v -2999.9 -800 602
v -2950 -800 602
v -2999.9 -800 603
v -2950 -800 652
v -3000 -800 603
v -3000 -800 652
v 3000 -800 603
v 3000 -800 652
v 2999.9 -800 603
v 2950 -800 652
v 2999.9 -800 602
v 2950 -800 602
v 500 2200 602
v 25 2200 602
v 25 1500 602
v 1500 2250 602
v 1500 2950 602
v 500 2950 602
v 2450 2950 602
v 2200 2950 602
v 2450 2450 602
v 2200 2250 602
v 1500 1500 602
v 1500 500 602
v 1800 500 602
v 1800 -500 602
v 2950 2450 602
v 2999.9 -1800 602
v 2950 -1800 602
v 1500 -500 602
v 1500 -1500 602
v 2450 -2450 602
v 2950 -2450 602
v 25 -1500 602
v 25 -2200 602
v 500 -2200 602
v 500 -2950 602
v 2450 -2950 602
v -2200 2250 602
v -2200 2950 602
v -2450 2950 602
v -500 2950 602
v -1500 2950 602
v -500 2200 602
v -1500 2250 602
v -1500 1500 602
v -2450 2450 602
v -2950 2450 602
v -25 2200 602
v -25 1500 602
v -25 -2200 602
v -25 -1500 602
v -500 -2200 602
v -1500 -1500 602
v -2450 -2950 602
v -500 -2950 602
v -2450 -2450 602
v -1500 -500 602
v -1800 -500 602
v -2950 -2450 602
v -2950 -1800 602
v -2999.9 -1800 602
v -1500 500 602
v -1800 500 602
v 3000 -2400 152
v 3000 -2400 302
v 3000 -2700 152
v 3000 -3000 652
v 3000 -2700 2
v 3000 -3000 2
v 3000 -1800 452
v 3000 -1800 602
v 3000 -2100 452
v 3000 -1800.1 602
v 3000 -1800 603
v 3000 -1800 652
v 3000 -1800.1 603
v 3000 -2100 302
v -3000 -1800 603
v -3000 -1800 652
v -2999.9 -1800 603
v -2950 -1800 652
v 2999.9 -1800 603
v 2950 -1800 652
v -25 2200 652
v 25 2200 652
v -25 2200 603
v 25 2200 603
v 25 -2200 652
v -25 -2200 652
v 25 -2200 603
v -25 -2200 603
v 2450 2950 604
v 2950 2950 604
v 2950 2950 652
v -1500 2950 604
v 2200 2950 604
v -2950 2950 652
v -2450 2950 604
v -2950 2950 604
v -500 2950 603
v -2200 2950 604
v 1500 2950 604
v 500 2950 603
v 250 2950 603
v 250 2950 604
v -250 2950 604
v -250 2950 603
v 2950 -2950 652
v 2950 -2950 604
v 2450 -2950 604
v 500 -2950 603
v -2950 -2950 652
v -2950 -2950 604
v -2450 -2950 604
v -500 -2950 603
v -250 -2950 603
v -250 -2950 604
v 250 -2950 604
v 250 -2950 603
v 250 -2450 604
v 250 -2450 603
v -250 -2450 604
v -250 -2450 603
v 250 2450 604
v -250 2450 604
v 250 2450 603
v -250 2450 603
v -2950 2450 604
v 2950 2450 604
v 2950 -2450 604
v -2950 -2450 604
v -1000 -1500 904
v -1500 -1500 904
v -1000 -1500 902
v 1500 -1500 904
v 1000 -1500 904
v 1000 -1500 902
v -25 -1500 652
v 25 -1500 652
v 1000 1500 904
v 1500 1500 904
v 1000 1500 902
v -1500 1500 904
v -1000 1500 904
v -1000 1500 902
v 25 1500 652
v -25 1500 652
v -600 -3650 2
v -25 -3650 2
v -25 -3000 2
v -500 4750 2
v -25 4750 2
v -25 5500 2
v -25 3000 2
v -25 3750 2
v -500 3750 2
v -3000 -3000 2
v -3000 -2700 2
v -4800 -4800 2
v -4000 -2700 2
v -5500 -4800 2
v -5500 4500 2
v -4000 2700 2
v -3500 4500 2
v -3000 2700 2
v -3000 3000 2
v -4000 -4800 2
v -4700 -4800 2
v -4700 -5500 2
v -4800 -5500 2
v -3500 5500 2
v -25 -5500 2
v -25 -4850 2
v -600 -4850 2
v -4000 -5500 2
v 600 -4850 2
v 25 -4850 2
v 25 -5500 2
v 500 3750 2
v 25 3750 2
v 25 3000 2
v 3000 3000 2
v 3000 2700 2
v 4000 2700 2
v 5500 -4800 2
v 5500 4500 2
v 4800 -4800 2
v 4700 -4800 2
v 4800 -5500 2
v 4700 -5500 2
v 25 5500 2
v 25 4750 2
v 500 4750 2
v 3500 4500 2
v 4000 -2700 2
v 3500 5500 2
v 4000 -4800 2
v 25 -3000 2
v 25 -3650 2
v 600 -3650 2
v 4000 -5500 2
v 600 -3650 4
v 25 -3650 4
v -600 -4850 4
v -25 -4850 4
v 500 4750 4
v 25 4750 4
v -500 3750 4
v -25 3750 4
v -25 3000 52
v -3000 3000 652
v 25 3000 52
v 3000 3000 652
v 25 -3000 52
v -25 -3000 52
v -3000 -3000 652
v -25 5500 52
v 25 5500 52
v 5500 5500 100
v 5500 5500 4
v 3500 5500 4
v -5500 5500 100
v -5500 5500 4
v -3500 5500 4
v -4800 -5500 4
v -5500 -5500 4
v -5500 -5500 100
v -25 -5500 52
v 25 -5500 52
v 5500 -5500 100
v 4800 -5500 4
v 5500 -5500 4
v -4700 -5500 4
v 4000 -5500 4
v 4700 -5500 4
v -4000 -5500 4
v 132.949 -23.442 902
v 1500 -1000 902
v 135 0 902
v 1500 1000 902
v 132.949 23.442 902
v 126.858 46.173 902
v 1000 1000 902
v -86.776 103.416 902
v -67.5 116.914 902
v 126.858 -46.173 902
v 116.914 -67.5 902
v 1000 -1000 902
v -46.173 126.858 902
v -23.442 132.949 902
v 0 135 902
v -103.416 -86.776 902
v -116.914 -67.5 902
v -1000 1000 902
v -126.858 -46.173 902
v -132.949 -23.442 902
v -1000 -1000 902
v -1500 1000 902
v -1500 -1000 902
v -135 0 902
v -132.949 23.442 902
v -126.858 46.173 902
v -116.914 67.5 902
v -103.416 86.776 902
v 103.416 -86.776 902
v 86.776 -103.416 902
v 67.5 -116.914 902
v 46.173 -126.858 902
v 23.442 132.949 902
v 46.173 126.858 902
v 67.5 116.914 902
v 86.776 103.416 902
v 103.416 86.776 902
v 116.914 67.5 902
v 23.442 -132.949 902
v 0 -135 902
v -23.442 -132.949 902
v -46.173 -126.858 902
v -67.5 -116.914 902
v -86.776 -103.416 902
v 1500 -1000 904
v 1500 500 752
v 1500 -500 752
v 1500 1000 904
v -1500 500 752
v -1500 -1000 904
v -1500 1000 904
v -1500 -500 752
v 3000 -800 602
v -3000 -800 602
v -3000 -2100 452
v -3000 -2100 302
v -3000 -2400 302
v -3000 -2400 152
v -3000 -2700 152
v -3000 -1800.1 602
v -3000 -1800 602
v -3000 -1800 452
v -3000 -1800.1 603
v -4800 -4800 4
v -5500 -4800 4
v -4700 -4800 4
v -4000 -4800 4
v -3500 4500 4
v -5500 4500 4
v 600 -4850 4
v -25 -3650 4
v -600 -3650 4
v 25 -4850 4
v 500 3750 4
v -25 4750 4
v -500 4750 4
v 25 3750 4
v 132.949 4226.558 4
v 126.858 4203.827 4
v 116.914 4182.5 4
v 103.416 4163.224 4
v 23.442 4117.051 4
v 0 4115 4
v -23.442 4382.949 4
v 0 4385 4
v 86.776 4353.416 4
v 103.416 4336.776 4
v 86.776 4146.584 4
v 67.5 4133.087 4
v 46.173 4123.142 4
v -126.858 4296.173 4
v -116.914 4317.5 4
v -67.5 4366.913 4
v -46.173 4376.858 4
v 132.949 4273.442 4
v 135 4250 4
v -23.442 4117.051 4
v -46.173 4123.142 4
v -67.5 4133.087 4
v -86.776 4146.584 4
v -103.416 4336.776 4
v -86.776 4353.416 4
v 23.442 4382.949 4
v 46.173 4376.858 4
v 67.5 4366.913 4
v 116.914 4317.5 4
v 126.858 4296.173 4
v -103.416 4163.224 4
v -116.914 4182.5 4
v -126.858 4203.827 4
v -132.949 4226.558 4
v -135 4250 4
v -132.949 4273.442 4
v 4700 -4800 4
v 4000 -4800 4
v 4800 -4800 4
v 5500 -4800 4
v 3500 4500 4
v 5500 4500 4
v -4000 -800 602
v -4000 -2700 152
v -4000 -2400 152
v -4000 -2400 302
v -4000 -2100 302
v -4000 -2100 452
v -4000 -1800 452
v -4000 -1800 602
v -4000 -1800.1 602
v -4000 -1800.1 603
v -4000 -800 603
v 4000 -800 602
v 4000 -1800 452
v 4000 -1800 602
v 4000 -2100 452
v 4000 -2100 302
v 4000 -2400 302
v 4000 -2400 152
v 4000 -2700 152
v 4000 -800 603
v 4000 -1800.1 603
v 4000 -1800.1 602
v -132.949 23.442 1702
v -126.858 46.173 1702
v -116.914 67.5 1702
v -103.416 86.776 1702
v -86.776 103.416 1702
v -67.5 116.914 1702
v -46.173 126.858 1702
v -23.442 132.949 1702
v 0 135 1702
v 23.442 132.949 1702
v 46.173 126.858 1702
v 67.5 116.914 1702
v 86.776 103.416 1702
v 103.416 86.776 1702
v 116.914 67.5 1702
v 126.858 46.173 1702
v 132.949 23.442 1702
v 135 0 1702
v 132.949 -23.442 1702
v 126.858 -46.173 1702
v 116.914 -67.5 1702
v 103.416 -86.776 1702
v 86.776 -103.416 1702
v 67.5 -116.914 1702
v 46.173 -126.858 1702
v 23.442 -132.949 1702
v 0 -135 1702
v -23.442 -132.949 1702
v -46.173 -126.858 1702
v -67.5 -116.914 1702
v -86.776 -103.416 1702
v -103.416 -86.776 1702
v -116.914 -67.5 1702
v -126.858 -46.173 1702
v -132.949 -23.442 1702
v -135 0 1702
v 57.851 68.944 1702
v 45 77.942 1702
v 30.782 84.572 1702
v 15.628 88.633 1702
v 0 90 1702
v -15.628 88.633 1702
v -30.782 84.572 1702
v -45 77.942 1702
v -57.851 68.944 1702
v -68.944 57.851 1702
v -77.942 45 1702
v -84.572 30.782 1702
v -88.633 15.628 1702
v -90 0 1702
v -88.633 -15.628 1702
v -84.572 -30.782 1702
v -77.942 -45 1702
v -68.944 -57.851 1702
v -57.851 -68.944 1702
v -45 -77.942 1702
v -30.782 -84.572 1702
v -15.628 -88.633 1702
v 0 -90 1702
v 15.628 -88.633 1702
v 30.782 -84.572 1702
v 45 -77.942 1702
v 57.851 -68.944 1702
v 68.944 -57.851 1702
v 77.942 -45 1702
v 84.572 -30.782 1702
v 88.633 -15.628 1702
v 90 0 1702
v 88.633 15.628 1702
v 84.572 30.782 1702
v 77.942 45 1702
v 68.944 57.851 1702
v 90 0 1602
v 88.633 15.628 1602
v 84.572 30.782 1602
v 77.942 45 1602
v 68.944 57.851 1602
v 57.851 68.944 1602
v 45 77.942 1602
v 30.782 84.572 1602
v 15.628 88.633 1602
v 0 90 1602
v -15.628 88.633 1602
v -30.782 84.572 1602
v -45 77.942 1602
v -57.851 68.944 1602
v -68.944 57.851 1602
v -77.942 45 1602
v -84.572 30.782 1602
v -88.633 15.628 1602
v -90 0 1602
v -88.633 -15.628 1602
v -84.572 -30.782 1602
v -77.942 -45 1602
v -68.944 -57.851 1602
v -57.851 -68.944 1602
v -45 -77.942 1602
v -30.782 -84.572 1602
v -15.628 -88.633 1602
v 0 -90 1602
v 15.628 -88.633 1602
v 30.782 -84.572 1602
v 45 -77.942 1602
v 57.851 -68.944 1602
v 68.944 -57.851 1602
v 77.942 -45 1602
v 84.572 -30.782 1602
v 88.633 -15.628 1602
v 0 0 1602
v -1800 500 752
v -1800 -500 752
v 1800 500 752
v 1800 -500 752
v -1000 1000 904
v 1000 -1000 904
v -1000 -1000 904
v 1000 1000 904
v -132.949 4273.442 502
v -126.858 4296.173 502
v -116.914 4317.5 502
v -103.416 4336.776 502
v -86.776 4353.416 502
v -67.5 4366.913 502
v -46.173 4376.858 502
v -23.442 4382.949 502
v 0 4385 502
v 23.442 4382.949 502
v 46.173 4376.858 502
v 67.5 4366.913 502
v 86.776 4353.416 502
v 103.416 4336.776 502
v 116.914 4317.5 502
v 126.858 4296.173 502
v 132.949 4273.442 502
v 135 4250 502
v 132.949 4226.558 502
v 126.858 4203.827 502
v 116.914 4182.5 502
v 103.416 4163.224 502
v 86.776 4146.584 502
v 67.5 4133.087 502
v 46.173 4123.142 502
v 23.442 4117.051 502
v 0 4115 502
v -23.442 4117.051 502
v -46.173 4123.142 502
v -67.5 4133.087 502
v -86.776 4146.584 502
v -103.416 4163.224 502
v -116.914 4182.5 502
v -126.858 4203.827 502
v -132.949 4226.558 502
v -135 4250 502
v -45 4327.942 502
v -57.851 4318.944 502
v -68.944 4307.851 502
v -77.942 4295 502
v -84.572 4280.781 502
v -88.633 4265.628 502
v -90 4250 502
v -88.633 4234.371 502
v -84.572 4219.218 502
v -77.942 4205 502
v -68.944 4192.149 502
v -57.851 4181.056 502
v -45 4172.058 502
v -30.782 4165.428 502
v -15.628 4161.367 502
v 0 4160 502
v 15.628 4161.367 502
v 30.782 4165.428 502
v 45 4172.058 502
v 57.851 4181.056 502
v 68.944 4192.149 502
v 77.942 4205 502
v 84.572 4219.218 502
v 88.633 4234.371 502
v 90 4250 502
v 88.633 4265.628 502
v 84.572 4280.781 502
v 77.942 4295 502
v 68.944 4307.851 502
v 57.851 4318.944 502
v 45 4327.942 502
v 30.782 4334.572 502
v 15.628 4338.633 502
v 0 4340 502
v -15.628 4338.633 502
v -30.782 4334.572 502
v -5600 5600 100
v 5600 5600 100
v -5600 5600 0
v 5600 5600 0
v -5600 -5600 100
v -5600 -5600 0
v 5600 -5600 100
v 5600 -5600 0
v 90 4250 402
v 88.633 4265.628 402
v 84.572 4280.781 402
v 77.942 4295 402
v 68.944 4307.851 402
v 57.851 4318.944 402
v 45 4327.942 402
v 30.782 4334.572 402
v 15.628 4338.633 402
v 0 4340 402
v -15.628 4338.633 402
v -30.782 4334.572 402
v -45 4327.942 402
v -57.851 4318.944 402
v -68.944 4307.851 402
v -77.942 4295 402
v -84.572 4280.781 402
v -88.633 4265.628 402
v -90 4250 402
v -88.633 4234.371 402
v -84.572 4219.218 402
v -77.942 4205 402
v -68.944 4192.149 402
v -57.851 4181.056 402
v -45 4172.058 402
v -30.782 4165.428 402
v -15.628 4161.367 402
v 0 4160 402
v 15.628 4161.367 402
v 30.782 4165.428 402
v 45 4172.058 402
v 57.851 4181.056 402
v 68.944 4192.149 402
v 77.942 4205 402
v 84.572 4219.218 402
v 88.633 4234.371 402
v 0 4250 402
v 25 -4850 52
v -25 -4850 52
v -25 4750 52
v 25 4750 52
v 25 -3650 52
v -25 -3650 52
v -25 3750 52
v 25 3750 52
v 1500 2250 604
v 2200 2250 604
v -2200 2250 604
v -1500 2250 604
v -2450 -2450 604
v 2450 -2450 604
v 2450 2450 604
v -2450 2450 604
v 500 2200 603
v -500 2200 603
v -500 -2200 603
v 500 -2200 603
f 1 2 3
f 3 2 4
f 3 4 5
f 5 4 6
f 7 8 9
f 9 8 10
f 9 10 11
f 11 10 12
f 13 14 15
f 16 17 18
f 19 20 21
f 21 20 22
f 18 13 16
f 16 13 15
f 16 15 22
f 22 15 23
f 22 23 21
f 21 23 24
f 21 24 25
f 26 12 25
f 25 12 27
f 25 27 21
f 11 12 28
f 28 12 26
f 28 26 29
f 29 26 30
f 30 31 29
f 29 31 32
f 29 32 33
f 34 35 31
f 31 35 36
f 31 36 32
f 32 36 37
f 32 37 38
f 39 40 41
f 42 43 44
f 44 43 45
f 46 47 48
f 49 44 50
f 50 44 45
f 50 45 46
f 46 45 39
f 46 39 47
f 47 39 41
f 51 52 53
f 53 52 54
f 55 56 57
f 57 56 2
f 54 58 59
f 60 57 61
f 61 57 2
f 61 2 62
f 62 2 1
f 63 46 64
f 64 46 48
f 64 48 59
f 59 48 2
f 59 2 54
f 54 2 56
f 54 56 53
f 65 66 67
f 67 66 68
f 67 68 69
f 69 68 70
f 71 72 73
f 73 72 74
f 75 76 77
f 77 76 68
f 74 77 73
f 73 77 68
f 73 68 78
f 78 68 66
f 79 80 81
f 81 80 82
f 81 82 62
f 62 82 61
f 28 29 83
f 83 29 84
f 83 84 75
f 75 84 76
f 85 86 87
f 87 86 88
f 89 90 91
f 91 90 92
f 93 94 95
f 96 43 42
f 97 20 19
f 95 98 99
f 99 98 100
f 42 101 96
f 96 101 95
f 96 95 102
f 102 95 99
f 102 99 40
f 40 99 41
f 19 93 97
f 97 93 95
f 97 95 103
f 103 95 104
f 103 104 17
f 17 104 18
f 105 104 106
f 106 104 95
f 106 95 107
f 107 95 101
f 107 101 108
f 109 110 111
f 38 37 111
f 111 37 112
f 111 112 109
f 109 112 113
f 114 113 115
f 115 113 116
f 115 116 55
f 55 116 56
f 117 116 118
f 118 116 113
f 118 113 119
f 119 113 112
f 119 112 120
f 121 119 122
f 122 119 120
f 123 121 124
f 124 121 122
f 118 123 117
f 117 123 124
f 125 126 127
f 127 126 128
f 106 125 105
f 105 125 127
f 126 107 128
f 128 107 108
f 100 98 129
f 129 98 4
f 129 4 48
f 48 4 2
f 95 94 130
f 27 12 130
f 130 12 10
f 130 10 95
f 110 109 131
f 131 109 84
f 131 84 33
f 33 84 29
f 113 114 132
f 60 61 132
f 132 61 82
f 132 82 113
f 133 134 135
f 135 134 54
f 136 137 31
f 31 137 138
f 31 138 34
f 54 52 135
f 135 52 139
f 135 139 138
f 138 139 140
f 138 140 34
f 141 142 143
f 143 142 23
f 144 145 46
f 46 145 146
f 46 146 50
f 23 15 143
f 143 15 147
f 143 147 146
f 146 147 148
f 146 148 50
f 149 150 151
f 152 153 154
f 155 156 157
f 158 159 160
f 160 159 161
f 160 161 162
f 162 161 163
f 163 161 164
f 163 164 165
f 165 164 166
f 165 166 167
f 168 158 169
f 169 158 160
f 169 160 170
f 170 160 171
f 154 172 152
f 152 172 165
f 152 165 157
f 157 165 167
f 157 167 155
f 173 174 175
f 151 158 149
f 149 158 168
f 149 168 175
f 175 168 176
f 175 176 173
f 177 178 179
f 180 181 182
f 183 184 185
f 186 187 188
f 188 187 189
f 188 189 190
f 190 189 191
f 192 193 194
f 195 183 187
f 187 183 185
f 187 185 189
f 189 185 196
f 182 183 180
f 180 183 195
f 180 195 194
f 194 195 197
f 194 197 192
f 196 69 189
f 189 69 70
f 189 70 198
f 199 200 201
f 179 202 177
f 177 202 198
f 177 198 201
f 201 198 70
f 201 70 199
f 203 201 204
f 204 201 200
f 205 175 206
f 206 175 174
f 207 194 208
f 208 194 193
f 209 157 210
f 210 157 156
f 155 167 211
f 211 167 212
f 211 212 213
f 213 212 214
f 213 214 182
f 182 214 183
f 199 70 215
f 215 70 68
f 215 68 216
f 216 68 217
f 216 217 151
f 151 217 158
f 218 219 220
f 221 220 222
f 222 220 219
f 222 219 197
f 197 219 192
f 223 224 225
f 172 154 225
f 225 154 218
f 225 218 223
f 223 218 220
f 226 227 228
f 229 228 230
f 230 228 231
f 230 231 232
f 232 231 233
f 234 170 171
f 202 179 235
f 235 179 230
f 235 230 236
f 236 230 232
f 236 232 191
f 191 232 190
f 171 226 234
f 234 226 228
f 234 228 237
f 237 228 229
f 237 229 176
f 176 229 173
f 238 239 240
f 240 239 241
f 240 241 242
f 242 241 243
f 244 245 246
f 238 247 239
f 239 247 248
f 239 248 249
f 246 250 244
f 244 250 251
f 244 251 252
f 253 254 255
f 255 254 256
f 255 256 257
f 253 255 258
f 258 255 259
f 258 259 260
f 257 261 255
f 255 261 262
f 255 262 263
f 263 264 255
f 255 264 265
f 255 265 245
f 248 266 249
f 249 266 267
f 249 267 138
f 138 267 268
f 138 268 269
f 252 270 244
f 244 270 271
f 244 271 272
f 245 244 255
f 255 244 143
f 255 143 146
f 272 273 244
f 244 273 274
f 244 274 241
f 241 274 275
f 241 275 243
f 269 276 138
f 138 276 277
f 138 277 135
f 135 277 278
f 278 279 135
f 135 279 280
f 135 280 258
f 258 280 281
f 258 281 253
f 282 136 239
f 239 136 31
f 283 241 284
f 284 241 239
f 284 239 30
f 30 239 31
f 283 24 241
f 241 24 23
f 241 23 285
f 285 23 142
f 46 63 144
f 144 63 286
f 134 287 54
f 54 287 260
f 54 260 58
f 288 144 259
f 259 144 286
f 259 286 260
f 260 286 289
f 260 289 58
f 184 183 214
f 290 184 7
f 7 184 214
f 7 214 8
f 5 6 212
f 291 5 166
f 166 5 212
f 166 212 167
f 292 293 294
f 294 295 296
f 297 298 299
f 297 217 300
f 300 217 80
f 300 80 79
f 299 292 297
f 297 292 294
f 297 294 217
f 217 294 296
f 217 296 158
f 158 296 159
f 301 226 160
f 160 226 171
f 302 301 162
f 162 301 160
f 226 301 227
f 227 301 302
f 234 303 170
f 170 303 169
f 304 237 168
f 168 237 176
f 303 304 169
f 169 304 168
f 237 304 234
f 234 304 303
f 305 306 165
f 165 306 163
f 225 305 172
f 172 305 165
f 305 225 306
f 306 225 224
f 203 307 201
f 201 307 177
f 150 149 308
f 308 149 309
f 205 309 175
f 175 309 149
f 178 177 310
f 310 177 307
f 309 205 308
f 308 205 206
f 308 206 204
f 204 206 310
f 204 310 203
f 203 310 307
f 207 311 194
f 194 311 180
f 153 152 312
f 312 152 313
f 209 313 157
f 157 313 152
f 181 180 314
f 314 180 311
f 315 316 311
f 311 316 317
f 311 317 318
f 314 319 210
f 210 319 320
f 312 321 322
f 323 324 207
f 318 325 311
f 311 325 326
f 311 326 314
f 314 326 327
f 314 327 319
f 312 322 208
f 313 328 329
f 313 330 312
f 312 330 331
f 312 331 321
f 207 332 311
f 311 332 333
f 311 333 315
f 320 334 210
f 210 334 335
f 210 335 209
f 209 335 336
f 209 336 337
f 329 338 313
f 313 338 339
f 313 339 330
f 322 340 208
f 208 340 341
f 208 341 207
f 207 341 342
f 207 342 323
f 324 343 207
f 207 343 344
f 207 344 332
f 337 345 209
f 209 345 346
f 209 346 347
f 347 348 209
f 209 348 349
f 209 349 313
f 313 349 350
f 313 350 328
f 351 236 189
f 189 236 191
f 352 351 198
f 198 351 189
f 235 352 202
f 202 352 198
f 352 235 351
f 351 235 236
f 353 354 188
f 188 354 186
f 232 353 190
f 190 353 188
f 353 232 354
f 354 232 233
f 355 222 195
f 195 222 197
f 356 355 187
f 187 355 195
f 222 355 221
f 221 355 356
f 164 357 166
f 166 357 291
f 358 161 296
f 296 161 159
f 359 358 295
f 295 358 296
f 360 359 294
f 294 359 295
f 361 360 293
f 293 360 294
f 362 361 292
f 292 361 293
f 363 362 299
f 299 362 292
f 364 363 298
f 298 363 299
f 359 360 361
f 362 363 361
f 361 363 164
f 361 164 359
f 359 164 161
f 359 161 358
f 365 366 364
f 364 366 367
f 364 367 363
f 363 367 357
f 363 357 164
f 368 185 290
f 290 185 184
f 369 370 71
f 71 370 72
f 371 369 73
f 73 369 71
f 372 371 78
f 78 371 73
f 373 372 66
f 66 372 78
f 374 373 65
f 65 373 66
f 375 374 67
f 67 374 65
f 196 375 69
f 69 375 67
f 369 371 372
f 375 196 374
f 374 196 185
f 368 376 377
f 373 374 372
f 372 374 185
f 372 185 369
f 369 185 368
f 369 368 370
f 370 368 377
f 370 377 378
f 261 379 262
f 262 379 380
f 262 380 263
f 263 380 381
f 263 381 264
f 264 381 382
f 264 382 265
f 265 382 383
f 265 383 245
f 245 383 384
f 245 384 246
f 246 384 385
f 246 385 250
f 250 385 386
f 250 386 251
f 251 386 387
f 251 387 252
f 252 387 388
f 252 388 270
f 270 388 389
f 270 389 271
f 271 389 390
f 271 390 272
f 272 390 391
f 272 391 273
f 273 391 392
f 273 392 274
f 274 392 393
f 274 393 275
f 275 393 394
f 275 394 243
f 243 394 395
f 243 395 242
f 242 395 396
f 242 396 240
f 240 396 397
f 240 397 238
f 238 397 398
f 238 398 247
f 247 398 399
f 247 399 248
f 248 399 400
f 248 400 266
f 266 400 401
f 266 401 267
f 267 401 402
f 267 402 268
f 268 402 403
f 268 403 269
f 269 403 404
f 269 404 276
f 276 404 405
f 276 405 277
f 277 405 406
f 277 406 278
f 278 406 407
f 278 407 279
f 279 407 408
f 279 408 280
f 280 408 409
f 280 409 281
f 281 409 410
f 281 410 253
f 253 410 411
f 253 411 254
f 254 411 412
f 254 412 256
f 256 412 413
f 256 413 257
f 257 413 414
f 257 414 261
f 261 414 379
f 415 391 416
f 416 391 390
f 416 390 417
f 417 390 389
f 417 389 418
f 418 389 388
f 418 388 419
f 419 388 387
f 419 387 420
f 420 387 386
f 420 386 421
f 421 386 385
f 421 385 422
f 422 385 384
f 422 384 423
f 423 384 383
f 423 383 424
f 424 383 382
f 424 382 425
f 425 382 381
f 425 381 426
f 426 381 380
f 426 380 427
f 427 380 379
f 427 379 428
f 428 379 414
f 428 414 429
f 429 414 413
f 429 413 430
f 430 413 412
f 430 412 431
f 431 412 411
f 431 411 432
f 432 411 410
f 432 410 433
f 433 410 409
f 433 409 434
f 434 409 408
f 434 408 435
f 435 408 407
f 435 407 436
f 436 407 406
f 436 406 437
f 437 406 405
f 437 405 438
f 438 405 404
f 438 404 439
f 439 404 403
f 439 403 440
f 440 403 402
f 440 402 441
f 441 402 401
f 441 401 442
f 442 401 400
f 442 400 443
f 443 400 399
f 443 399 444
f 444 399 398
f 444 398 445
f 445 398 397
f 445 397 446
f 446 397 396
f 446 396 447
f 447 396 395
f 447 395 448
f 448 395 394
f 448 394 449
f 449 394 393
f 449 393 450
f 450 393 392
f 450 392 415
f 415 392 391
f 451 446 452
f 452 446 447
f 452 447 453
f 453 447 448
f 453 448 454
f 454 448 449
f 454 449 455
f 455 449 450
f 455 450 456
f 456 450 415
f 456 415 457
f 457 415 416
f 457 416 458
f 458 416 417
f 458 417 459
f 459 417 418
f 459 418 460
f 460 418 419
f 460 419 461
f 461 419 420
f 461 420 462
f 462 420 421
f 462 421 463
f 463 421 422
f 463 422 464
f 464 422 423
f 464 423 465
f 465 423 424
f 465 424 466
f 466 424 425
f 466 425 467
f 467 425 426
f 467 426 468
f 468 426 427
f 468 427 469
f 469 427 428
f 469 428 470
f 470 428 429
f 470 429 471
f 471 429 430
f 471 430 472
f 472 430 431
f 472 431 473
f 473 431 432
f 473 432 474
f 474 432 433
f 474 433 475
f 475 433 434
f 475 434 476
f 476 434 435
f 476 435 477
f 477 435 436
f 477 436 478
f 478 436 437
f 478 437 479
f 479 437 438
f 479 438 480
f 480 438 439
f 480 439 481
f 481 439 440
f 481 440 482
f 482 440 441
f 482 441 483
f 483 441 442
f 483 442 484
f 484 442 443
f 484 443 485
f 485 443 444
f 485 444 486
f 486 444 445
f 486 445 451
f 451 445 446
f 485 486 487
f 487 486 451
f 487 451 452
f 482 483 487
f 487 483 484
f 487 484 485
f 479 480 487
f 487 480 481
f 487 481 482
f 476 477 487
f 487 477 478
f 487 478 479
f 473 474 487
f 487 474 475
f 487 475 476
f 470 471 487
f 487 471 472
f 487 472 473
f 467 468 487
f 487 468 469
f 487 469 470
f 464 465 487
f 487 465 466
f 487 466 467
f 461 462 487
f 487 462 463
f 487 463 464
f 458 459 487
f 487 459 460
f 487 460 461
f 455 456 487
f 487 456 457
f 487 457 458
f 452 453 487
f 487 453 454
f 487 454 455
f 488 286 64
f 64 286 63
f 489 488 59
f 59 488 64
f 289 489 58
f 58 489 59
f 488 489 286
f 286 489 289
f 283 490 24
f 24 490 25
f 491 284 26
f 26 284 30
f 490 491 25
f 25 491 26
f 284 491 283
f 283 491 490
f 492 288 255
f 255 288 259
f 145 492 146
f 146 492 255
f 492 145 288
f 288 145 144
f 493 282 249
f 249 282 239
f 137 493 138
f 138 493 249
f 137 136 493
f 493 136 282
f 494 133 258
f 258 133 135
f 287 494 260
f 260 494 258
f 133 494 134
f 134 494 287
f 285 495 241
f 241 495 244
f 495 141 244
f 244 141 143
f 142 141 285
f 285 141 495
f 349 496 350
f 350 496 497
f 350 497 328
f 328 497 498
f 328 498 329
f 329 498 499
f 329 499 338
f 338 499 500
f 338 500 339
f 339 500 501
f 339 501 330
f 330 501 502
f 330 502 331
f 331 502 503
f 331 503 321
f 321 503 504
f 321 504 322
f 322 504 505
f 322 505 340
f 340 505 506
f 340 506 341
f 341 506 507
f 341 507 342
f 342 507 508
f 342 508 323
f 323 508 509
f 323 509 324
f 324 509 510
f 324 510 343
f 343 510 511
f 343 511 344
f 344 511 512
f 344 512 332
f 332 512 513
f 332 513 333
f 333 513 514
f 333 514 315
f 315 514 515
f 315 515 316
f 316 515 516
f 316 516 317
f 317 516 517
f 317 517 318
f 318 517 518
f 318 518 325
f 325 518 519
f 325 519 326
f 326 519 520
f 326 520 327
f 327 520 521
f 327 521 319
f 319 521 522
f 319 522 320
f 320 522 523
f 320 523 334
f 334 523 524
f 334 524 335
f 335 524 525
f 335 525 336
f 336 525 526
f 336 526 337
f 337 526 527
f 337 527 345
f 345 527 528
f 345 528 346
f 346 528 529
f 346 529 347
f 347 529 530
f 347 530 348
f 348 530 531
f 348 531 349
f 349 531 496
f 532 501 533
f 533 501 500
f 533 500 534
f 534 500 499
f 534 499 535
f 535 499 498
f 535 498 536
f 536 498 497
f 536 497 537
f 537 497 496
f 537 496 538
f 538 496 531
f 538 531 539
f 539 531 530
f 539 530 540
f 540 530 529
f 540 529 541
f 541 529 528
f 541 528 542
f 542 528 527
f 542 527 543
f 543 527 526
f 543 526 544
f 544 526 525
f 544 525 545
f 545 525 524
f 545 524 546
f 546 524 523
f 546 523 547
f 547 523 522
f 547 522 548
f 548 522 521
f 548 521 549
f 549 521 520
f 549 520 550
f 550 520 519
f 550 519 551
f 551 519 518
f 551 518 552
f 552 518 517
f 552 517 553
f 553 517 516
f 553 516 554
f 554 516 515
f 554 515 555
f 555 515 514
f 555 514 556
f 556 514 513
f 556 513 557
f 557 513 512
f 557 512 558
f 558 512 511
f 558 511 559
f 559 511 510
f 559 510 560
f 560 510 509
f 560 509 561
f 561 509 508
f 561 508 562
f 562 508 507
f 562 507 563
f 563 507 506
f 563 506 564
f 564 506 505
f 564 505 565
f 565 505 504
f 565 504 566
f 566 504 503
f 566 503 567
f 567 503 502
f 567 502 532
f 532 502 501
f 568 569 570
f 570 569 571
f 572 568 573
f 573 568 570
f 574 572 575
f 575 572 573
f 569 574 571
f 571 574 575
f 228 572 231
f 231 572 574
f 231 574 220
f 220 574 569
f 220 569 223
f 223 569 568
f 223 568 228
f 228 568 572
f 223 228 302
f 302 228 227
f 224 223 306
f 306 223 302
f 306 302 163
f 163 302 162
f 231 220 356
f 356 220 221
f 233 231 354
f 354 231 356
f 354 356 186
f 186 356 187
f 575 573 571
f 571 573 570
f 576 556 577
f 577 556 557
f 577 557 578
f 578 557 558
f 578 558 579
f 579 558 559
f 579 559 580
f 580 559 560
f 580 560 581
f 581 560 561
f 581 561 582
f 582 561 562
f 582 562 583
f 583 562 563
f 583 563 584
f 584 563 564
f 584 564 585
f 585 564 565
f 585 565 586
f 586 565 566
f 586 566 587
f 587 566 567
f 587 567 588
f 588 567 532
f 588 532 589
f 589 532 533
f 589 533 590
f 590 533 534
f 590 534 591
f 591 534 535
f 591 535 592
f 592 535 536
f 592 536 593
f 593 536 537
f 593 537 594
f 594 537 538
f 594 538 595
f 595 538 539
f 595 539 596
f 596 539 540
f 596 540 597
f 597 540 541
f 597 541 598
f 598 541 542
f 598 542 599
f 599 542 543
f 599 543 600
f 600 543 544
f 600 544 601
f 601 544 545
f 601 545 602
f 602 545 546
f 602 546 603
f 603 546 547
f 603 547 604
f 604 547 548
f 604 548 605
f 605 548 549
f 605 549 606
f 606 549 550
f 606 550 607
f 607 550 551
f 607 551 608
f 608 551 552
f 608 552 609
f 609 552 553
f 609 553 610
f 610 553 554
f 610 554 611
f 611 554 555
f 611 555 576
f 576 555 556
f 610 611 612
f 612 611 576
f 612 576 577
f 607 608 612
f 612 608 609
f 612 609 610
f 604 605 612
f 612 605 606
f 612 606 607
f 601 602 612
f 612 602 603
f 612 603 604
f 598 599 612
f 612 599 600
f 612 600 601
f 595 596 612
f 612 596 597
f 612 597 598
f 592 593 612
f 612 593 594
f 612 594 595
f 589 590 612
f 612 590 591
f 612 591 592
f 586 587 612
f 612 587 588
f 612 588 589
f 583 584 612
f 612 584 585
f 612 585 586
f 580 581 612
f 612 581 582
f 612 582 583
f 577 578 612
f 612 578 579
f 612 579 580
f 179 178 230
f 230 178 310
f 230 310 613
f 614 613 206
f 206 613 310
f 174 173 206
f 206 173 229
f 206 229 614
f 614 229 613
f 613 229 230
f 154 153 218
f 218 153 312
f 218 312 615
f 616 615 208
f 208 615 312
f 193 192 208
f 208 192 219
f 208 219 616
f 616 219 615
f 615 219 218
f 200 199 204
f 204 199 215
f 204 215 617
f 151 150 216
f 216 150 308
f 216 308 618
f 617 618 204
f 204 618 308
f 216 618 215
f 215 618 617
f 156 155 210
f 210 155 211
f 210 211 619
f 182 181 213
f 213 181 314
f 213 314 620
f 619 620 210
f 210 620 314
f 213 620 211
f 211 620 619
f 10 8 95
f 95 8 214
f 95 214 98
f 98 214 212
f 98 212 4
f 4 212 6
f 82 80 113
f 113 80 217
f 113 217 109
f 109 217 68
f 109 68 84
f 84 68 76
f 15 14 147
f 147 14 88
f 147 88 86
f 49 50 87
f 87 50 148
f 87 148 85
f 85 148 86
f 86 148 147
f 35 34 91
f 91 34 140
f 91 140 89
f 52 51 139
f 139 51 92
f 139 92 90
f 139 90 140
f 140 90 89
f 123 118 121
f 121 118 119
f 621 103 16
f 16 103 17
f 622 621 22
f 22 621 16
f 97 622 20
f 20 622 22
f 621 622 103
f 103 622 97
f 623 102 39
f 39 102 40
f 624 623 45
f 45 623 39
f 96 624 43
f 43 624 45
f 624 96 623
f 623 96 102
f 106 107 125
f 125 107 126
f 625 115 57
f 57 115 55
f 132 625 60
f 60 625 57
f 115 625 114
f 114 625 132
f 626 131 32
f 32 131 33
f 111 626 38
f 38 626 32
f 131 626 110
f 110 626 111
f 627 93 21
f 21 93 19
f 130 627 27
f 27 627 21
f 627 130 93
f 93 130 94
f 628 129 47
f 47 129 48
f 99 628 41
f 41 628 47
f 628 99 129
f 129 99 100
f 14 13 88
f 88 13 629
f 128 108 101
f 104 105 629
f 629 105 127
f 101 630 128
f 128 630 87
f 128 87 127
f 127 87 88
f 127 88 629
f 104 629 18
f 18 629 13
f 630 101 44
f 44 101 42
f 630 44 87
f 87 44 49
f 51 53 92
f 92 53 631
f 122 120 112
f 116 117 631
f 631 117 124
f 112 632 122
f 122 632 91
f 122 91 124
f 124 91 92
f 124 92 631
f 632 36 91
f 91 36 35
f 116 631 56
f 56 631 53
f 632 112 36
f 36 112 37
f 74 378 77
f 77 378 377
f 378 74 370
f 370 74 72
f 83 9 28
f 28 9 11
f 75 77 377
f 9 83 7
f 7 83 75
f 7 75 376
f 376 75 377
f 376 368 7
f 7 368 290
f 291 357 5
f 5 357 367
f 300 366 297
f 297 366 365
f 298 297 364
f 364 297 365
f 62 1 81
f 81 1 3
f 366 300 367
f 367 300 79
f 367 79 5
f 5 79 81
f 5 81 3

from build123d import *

# Parameters (mm, degrees)
SKETCH_1_W          = 11000
SKETCH_1_H          = 11000
EXTRUDE_1_DEPTH     = 2
SKETCH_2_W          = 700
SKETCH_2_H          = 700
SKETCH_2_W_2        = 2000
SKETCH_2_H_2        = 1000
SKETCH_2_W_3        = 1200
SKETCH_2_H_3        = 1200
SKETCH_2_W_4        = 1000
EXTRUDE_2_DEPTH     = 2
SKETCH_3_W          = 6000
SKETCH_3_H          = 6000
EXTRUDE_3_DEPTH     = 600
EXTRUDE_4_DEPTH     = 1000
SKETCH_5_W          = 3000
SKETCH_5_H          = 3000
EXTRUDE_5_DEPTH     = 300
SKETCH_6_R          = 135
EXTRUDE_6_DEPTH     = 800
SKETCH_7_R          = 90
CUT_EXTRUDE_1_DEPTH = 100
SKETCH_8_W          = 300
SKETCH_8_H          = 1000
EXTRUDE_7_DEPTH     = 150
SKETCH_9_W          = 500
SKETCH_9_H          = 500
EXTRUDE_8_DEPTH     = 2
SKETCH_10_W         = 11200
SKETCH_10_H         = 11200
SKETCH_10_W_2       = 11000
SKETCH_10_H_2       = 11000
EXTRUDE_9_DEPTH     = 100
SKETCH_12_R         = 135
EXTRUDE_10_DEPTH    = 500
SKETCH_13_R         = 90
CUT_EXTRUDE_2_DEPTH = 100
SKETCH_14_W         = 50
SKETCH_14_H         = 650
SKETCH_14_H_2       = 750
EXTRUDE_11_DEPTH    = 50
SKETCH_15_W         = 50
SKETCH_15_H         = 700
EXTRUDE_12_DEPTH    = 50
SKETCH_16_W         = 500
SKETCH_16_H         = 500
SKETCH_16_W_2       = 700
SKETCH_16_H_2       = 700
EXTRUDE_13_DEPTH    = 2
SKETCH_17_W         = 1000
SKETCH_17_H         = 750
EXTRUDE_14_DEPTH    = 1
SKETCH_18_W         = 1000.1
SKETCH_18_H         = 1000.1
EXTRUDE_21_DEPTH    = 1


with BuildPart() as part:
    # ｽｹｯﾁ1 → ﾎﾞｽ - 押し出し1 (new body)
    with BuildSketch(Plane.XY):
        Rectangle(SKETCH_1_W, SKETCH_1_H)
    extrude(amount=EXTRUDE_1_DEPTH)

    # ｽｹｯﾁ2 → ﾎﾞｽ - 押し出し2 (add)
    with BuildSketch(Plane.XY.offset(2)):
        with Locations((-5150, -5150)):
            Rectangle(SKETCH_2_W, SKETCH_2_H)
        with Locations((-4350, -5150)):
            Rectangle(SKETCH_2_W, SKETCH_2_H)
        with Locations((-4500, 5000)):
            Rectangle(SKETCH_2_W_2, SKETCH_2_H_2)
        with Locations((0, -4250)):
            Rectangle(SKETCH_2_W_3, SKETCH_2_H_3)
        with Locations((0, 4250)):
            Rectangle(SKETCH_2_W_4, SKETCH_2_H_2)
        with Locations((4350, -5150)):
            Rectangle(SKETCH_2_W, SKETCH_2_H)
        with Locations((5150, -5150)):
            Rectangle(SKETCH_2_W, SKETCH_2_H)
        with Locations((4500, 5000)):
            Rectangle(SKETCH_2_W_2, SKETCH_2_H_2)
    extrude(amount=EXTRUDE_2_DEPTH)

    # ｽｹｯﾁ3 → ﾎﾞｽ - 押し出し3 (add)
    with BuildSketch(Plane.XY.offset(2)):
        Rectangle(SKETCH_3_W, SKETCH_3_H)
    extrude(amount=EXTRUDE_3_DEPTH)

    # ｽｹｯﾁ4 → ﾎﾞｽ - 押し出し4 (add)
    with BuildSketch(Plane.ZY.offset(3000)):
        Polygon((2, 2700), (2, -2700), (152, -2700), (152, -2400), (302, -2400), (302, -2100), (452, -2100), (452, -1800), (602, -1800), (602, -800), align=None)
    extrude_4 = extrude(amount=EXTRUDE_4_DEPTH)

    # ﾐﾗｰ1: ﾎﾞｽ - 押し出し4 across plane
    add(extrude_4.mirror(Plane(origin=(0, 0, 0), x_dir=(0, 0, 1), z_dir=(1, 0, 0))))

    # ｽｹｯﾁ5 → ﾎﾞｽ - 押し出し5 (add)
    with BuildSketch(Plane.XY.offset(602)):
        Rectangle(SKETCH_5_W, SKETCH_5_H)
    extrude(amount=EXTRUDE_5_DEPTH)

    # ｽｹｯﾁ6 → ﾎﾞｽ - 押し出し6 (add)
    with BuildSketch(Plane.XY.offset(902)):
        Circle(SKETCH_6_R)
    extrude(amount=EXTRUDE_6_DEPTH)

    # ｽｹｯﾁ7 → ｶｯﾄ - 押し出し1 (cut)
    with BuildSketch(Plane.XY.offset(1702)):
        Circle(SKETCH_7_R)
    extrude(amount=-CUT_EXTRUDE_1_DEPTH, mode=Mode.SUBTRACT)

    # ｽｹｯﾁ8 → ﾎﾞｽ - 押し出し7 (add)
    with BuildSketch(Plane.XY.offset(602)):
        with Locations((1650, 0)):
            Rectangle(SKETCH_8_W, SKETCH_8_H)
        with Locations((-1650, 0)):
            Rectangle(SKETCH_8_W, SKETCH_8_H)
    extrude(amount=EXTRUDE_7_DEPTH)

    # ｽｹｯﾁ9 → ﾎﾞｽ - 押し出し8 (add)
    with BuildSketch(Plane.XY.offset(902)):
        with Locations((1250, 1250)):
            Rectangle(SKETCH_9_W, SKETCH_9_H)
        with Locations((-1250, 1250)):
            Rectangle(SKETCH_9_W, SKETCH_9_H)
        with Locations((1250, -1250)):
            Rectangle(SKETCH_9_W, SKETCH_9_H)
        with Locations((-1250, -1250)):
            Rectangle(SKETCH_9_W, SKETCH_9_H)
    extrude(amount=EXTRUDE_8_DEPTH)



with BuildPart() as body_2:
    # ｽｹｯﾁ10 → ﾎﾞｽ - 押し出し9 (new body)
    with BuildSketch(Plane(origin=(0, 0, 0), x_dir=(-1, 0, 0), z_dir=(0, 0, -1))):
        Rectangle(SKETCH_10_W, SKETCH_10_H)
        Rectangle(SKETCH_10_W_2, SKETCH_10_H_2, mode=Mode.SUBTRACT)
    extrude(amount=-EXTRUDE_9_DEPTH)


with BuildPart() as part_1:
    add(part.part)

    add(body_2.part)  # ﾎﾞｽ - 押し出し10 merges body 2
    # ｽｹｯﾁ12 → ﾎﾞｽ - 押し出し10 (add)
    with BuildSketch(Plane.XY.offset(2)):
        with Locations((0, 4250)):
            Circle(SKETCH_12_R)
    extrude(amount=EXTRUDE_10_DEPTH)

    # ｽｹｯﾁ13 → ｶｯﾄ - 押し出し2 (cut)
    with BuildSketch(Plane.XY.offset(502)):
        with Locations((0, 4250)):
            Circle(SKETCH_13_R)
    extrude(amount=-CUT_EXTRUDE_2_DEPTH, mode=Mode.SUBTRACT)

    # ｽｹｯﾁ14 → ﾎﾞｽ - 押し出し11 (add)
    with BuildSketch(Plane.XY.offset(2)):
        with Locations((0, -3325)):
            Rectangle(SKETCH_14_W, SKETCH_14_H)
        with Locations((0, -5175)):
            Rectangle(SKETCH_14_W, SKETCH_14_H)
        with Locations((0, 3375)):
            Rectangle(SKETCH_14_W, SKETCH_14_H_2)
        with Locations((0, 5125)):
            Rectangle(SKETCH_14_W, SKETCH_14_H_2)
    extrude(amount=EXTRUDE_11_DEPTH)

    # ｽｹｯﾁ15 → ﾎﾞｽ - 押し出し12 (add)
    with BuildSketch(Plane.XY.offset(602)):
        Polygon((-3000, -800), (-3000, 3000), (3000, 3000), (3000, -800), (2950, -800), (2950, 2950), (-2950, 2950), (-2950, -800), align=None)
        Polygon((-3000, -1800), (-3000, -3000), (3000, -3000), (3000, -1800), (2950, -1800), (2950, -2950), (-2950, -2950), (-2950, -1800), align=None)
        with Locations((0, 1850)):
            Rectangle(SKETCH_15_W, SKETCH_15_H)
        with Locations((0, -1850)):
            Rectangle(SKETCH_15_W, SKETCH_15_H)
    extrude(amount=EXTRUDE_12_DEPTH)

    # ｽｹｯﾁ16 → ﾎﾞｽ - 押し出し13 (add)
    with BuildSketch(Plane.XY.offset(602)):
        with Locations((2700, -2700)):
            Rectangle(SKETCH_16_W, SKETCH_16_H)
        with Locations((-2700, -2700)):
            Rectangle(SKETCH_16_W, SKETCH_16_H)
        with Locations((2700, 2700)):
            Rectangle(SKETCH_16_W, SKETCH_16_H)
        with Locations((-2700, 2700)):
            Rectangle(SKETCH_16_W, SKETCH_16_H)
        with Locations((0, -2700)):
            Rectangle(SKETCH_16_W, SKETCH_16_H)
        with Locations((0, 2700)):
            Rectangle(SKETCH_16_W, SKETCH_16_H)
        with Locations((1850, 2600)):
            Rectangle(SKETCH_16_W_2, SKETCH_16_H_2)
        with Locations((-1850, 2600)):
            Rectangle(SKETCH_16_W_2, SKETCH_16_H_2)
    extrude(amount=EXTRUDE_13_DEPTH)

    # ｽｹｯﾁ17 → ﾎﾞｽ - 押し出し14 (add)
    with BuildSketch(Plane.XY.offset(602)):
        with Locations((0, 2575)):
            Rectangle(SKETCH_17_W, SKETCH_17_H)
        with Locations((0, -2575)):
            Rectangle(SKETCH_17_W, SKETCH_17_H)
    extrude(amount=EXTRUDE_14_DEPTH)

    # ｽｹｯﾁ18 → ﾎﾞｽ - 押し出し21 (add)
    with BuildSketch(Plane.XY.offset(602)):
        with Locations((-3499.95, -1300.05)):
            Rectangle(SKETCH_18_W, SKETCH_18_H)
        with Locations((3499.95, -1300.05)):
            Rectangle(SKETCH_18_W, SKETCH_18_H)
    extrude(amount=EXTRUDE_21_DEPTH)


solid = part_1.part
